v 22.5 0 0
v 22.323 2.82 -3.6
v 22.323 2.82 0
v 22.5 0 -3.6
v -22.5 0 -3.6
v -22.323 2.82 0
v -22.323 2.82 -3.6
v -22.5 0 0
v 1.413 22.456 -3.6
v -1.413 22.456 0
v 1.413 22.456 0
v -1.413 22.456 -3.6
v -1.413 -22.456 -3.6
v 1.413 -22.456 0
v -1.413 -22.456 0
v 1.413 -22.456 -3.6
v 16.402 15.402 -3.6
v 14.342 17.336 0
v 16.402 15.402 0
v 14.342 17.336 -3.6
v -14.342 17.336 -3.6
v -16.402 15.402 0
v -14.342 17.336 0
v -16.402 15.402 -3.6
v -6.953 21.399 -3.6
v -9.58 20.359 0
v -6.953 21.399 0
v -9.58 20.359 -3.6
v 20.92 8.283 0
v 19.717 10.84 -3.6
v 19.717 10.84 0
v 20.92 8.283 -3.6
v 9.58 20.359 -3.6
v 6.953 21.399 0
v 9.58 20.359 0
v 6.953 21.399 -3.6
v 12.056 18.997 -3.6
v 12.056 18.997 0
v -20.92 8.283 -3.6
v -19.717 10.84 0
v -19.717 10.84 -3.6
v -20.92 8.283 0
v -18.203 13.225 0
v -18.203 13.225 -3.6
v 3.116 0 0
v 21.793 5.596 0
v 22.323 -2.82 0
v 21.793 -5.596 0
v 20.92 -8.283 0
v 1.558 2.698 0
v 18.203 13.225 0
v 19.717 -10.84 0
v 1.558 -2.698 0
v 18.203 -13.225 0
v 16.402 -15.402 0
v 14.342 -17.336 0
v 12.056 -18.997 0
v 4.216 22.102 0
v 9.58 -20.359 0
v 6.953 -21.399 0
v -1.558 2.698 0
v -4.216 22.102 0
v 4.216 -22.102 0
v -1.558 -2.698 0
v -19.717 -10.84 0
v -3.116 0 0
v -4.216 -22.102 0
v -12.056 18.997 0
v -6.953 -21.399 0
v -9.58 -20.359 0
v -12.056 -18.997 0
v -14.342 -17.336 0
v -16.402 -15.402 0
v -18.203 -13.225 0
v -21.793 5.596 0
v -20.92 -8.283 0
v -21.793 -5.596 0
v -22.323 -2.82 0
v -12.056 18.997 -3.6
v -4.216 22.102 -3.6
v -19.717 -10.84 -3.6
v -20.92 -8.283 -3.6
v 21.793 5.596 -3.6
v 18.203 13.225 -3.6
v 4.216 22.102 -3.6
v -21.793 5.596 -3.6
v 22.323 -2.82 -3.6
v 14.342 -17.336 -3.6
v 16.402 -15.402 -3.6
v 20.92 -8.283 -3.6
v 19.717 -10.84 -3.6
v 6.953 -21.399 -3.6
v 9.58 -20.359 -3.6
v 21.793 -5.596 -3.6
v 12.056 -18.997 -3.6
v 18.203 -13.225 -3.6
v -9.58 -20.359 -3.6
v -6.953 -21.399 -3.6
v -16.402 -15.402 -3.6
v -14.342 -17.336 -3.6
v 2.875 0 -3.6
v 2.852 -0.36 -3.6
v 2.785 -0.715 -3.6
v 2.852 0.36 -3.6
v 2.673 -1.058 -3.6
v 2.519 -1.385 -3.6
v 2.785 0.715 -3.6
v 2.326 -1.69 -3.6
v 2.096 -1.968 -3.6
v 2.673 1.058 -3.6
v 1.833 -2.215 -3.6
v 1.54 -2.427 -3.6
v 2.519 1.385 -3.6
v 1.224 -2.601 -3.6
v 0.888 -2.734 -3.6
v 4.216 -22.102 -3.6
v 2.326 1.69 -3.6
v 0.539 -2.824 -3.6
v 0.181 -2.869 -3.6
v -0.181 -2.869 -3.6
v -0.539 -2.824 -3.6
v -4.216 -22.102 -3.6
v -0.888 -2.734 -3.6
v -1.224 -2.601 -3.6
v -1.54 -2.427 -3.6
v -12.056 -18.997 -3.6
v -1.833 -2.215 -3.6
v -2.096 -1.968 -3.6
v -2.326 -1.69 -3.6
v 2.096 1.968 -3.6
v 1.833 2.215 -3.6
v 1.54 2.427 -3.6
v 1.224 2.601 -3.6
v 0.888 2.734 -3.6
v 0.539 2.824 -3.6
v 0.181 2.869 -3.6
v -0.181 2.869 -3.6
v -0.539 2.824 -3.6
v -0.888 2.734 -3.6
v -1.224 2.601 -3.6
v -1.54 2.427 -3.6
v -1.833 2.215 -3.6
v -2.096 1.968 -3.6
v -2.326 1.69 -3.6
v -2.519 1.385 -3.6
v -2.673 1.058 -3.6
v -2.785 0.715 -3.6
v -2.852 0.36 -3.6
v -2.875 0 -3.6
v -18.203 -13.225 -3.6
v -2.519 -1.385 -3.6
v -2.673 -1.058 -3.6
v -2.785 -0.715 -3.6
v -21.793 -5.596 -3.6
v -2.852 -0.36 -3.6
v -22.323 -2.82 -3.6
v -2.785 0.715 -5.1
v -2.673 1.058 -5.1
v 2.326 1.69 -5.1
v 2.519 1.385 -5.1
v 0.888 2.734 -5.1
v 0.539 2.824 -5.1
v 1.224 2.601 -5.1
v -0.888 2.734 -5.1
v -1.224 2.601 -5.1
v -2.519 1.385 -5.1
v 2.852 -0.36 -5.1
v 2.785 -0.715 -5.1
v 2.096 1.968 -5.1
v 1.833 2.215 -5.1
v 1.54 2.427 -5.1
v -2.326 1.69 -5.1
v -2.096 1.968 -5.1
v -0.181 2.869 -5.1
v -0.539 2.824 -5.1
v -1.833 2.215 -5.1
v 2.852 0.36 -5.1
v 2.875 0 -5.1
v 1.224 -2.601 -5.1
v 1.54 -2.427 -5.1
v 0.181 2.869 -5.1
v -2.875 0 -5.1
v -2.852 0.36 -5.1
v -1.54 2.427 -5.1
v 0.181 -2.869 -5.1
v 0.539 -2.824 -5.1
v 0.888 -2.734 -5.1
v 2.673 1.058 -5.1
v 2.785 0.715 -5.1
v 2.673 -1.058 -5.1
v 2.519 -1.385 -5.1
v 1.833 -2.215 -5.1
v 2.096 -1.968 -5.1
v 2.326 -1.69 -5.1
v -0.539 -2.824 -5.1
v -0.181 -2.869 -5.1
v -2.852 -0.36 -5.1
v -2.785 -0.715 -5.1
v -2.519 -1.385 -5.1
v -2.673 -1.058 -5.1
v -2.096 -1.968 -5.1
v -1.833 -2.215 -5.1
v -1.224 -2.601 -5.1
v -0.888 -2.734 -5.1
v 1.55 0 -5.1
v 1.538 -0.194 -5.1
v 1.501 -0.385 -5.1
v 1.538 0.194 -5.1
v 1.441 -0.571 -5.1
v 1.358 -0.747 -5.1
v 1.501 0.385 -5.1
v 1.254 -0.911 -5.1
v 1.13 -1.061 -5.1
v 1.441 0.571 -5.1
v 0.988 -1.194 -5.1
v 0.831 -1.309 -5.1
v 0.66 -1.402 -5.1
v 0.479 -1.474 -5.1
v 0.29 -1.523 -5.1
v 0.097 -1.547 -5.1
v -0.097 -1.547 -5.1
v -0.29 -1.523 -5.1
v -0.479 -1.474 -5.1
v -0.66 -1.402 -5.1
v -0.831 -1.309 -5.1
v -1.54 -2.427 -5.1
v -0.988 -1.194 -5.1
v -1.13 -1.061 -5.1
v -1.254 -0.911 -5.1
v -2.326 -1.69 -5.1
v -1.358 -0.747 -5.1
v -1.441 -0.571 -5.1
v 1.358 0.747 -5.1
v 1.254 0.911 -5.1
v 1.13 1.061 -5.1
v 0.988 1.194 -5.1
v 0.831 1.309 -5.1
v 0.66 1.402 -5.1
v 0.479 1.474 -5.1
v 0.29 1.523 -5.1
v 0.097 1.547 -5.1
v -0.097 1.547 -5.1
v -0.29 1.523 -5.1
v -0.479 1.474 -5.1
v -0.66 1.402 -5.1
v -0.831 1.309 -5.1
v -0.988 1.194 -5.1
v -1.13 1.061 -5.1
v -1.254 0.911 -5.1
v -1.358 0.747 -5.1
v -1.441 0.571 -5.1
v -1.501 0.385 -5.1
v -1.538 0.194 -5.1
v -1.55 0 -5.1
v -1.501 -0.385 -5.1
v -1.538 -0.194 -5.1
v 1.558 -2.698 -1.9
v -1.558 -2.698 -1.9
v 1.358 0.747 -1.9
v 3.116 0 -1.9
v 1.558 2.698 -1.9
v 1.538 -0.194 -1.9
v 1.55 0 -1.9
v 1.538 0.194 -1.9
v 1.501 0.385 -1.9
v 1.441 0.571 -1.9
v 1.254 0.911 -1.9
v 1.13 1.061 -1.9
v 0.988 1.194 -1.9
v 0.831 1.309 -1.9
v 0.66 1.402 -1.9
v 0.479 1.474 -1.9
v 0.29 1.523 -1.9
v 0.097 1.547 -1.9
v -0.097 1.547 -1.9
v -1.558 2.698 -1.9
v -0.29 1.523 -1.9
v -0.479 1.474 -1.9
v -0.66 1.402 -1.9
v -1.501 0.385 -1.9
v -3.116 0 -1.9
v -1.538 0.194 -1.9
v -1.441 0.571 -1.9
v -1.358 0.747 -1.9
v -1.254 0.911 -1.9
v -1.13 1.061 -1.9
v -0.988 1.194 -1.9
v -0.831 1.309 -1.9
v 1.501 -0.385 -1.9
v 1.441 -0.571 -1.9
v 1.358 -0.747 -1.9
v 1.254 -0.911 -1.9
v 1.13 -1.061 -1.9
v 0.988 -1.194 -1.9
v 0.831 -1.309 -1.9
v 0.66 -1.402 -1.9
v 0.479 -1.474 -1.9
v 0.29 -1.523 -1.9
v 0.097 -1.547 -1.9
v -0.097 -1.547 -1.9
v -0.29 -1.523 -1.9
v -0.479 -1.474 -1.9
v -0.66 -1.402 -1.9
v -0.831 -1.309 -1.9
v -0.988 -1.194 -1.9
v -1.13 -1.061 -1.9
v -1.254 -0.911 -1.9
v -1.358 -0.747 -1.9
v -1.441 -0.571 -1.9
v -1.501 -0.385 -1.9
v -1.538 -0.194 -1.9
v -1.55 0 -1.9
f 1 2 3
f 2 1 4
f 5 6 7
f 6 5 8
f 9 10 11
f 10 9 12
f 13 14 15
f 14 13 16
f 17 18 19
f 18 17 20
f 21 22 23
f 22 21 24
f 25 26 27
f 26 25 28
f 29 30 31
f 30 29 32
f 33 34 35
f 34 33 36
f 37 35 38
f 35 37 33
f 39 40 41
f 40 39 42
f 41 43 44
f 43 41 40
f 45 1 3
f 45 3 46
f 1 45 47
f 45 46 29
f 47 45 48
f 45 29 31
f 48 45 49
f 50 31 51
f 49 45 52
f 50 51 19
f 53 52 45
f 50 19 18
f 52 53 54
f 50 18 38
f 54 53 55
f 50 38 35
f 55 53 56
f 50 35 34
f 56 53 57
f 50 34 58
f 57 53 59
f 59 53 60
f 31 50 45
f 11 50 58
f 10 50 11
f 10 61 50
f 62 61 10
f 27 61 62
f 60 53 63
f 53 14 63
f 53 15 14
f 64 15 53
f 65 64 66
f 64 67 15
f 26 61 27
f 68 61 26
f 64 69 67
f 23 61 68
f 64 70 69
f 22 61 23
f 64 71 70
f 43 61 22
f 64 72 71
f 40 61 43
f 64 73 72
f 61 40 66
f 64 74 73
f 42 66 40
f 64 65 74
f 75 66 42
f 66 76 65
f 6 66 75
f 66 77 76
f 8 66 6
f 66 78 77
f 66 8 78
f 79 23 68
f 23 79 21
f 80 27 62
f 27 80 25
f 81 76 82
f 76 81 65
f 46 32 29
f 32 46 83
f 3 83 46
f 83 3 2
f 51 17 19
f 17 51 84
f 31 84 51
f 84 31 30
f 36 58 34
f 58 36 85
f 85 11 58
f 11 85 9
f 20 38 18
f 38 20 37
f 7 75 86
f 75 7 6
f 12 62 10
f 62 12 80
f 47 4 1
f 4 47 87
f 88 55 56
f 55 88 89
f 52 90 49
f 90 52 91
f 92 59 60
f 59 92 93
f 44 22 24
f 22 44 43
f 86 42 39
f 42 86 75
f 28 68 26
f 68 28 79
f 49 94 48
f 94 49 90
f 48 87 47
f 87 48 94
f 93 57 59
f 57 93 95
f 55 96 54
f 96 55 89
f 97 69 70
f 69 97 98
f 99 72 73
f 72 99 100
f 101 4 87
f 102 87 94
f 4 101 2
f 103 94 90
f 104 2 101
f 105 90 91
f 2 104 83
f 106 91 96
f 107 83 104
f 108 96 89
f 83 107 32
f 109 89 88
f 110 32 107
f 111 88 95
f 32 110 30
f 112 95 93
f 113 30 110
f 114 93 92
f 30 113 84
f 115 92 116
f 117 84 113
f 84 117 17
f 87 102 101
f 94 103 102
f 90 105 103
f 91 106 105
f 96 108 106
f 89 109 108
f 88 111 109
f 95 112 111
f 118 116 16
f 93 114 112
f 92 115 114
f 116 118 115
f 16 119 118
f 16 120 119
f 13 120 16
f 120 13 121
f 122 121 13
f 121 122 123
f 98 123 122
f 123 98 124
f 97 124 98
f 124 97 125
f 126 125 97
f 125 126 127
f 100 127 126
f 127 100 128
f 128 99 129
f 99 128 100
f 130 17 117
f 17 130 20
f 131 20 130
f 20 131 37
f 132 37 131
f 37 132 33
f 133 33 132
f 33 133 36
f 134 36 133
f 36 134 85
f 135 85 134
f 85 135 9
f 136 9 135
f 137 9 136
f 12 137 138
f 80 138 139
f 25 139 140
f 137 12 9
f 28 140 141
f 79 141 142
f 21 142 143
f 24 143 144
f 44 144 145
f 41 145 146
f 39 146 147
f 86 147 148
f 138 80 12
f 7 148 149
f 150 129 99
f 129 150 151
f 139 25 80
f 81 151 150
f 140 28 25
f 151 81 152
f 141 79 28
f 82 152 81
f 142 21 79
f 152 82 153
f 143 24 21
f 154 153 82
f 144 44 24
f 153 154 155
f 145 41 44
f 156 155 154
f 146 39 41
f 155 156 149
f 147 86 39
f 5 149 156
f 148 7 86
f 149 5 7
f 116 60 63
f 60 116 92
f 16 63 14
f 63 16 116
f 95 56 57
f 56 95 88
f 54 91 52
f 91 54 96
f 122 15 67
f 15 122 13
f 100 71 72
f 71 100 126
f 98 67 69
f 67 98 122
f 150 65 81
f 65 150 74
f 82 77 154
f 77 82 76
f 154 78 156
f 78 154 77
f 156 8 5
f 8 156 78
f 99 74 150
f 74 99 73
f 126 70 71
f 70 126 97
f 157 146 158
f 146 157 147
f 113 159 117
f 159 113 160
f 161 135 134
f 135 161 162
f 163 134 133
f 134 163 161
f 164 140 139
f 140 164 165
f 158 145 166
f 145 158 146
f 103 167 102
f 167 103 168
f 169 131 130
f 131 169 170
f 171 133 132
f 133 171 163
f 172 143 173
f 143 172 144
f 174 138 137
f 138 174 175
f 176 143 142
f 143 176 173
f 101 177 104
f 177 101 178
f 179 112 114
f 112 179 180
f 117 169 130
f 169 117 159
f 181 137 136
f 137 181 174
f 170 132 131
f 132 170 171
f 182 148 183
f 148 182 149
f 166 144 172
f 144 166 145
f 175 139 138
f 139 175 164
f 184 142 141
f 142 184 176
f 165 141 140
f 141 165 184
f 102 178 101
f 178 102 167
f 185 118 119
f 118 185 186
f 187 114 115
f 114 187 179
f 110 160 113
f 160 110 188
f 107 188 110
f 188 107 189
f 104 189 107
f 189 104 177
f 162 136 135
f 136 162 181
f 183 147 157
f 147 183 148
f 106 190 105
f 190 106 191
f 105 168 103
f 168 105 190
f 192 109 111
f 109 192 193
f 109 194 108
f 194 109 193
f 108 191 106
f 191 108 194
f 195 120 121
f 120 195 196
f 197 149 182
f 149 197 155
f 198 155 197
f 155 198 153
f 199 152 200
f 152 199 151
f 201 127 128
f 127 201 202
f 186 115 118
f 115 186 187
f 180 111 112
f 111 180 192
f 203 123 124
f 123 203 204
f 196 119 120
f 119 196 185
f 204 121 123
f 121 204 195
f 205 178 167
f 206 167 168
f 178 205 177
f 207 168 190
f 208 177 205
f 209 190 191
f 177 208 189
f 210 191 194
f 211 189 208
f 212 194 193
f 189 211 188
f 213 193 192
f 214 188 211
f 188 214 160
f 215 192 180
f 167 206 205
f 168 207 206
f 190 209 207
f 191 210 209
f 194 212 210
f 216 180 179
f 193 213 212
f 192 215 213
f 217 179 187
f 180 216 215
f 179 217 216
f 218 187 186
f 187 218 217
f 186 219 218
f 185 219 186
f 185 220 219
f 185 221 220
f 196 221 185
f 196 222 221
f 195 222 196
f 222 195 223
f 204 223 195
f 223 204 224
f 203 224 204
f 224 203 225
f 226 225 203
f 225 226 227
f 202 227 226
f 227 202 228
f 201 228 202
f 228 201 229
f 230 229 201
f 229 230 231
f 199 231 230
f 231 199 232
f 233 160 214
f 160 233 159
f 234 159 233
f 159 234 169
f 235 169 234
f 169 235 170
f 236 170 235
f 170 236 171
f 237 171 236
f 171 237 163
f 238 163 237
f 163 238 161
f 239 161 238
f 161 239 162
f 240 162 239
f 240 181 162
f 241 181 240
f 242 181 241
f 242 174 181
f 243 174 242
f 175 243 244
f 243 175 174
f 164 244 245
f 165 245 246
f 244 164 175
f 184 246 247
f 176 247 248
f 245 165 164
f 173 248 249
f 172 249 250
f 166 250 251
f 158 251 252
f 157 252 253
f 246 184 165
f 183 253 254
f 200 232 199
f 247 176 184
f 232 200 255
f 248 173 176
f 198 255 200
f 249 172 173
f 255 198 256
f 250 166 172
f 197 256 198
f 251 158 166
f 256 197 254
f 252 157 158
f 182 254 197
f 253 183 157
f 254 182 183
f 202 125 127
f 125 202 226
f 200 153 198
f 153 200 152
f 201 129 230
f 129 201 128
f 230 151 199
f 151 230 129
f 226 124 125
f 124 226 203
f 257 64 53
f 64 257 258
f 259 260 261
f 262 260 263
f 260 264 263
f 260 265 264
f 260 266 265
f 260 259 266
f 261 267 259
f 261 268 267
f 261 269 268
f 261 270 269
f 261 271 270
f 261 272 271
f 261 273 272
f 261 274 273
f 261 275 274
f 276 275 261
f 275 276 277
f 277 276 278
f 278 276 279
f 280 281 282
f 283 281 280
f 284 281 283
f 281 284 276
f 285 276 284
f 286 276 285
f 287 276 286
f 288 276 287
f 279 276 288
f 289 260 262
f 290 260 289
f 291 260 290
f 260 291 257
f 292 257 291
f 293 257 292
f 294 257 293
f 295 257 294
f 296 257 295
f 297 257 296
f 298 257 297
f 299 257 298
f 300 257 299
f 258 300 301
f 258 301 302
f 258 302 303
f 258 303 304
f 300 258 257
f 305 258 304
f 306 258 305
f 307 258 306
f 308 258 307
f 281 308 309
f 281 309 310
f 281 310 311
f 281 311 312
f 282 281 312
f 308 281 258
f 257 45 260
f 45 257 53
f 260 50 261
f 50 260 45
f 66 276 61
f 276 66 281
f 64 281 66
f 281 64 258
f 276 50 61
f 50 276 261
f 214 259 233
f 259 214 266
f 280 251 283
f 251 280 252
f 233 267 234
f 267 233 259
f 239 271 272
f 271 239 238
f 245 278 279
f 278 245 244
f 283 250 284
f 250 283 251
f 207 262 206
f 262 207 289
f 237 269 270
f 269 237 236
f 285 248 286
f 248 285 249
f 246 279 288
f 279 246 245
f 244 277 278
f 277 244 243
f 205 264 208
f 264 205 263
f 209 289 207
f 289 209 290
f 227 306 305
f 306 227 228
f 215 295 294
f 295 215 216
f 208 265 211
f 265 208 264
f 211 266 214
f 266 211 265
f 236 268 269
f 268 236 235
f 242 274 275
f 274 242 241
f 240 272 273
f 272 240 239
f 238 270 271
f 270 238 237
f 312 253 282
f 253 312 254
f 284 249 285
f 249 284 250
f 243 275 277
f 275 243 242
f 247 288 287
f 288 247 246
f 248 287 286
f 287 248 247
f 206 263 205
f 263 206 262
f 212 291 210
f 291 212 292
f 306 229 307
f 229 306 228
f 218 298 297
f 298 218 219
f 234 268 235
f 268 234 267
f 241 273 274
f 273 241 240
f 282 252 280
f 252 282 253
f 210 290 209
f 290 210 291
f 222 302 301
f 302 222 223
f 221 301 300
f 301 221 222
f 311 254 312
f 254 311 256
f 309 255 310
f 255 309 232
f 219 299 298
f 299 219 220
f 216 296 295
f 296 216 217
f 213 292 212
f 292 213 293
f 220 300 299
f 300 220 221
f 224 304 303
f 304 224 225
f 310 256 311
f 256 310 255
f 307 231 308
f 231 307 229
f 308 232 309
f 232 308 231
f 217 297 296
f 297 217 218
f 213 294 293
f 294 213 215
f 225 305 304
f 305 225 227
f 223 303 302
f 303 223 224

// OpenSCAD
$fn = 50;


difference() {
	union() {
		translate(v = [0, 0, -3.6000000000]) {
			cylinder(h = 3.6000000000, r = 22.5000000000);
		}
		#translate(v = [0, 0, -5.1000000000]) {
			cylinder(h = 5.1000000000, r = 2.8750000000);
		}
	}
	union() {
		translate(v = [0, 0, 0]) {
			rotate(a = [0, 0, 0]) {
				difference() {
					union() {
						translate(v = [0, 0, -1.9000000000]) {
							linear_extrude(height = 1.9000000000) {
								polygon(points = [[3.1158000000, 0.0000000000], [1.5579000000, 2.6983619531], [-1.5579000000, 2.6983619531], [-3.1158000000, 0.0000000000], [-1.5579000000, -2.6983619531], [1.5579000000, -2.6983619531]]);
							}
						}
					}
					union();
				}
			}
		}
		#translate(v = [0, 0, -100.0000000000]) {
			cylinder(h = 200, r = 1.5500000000);
		}
	}
}
